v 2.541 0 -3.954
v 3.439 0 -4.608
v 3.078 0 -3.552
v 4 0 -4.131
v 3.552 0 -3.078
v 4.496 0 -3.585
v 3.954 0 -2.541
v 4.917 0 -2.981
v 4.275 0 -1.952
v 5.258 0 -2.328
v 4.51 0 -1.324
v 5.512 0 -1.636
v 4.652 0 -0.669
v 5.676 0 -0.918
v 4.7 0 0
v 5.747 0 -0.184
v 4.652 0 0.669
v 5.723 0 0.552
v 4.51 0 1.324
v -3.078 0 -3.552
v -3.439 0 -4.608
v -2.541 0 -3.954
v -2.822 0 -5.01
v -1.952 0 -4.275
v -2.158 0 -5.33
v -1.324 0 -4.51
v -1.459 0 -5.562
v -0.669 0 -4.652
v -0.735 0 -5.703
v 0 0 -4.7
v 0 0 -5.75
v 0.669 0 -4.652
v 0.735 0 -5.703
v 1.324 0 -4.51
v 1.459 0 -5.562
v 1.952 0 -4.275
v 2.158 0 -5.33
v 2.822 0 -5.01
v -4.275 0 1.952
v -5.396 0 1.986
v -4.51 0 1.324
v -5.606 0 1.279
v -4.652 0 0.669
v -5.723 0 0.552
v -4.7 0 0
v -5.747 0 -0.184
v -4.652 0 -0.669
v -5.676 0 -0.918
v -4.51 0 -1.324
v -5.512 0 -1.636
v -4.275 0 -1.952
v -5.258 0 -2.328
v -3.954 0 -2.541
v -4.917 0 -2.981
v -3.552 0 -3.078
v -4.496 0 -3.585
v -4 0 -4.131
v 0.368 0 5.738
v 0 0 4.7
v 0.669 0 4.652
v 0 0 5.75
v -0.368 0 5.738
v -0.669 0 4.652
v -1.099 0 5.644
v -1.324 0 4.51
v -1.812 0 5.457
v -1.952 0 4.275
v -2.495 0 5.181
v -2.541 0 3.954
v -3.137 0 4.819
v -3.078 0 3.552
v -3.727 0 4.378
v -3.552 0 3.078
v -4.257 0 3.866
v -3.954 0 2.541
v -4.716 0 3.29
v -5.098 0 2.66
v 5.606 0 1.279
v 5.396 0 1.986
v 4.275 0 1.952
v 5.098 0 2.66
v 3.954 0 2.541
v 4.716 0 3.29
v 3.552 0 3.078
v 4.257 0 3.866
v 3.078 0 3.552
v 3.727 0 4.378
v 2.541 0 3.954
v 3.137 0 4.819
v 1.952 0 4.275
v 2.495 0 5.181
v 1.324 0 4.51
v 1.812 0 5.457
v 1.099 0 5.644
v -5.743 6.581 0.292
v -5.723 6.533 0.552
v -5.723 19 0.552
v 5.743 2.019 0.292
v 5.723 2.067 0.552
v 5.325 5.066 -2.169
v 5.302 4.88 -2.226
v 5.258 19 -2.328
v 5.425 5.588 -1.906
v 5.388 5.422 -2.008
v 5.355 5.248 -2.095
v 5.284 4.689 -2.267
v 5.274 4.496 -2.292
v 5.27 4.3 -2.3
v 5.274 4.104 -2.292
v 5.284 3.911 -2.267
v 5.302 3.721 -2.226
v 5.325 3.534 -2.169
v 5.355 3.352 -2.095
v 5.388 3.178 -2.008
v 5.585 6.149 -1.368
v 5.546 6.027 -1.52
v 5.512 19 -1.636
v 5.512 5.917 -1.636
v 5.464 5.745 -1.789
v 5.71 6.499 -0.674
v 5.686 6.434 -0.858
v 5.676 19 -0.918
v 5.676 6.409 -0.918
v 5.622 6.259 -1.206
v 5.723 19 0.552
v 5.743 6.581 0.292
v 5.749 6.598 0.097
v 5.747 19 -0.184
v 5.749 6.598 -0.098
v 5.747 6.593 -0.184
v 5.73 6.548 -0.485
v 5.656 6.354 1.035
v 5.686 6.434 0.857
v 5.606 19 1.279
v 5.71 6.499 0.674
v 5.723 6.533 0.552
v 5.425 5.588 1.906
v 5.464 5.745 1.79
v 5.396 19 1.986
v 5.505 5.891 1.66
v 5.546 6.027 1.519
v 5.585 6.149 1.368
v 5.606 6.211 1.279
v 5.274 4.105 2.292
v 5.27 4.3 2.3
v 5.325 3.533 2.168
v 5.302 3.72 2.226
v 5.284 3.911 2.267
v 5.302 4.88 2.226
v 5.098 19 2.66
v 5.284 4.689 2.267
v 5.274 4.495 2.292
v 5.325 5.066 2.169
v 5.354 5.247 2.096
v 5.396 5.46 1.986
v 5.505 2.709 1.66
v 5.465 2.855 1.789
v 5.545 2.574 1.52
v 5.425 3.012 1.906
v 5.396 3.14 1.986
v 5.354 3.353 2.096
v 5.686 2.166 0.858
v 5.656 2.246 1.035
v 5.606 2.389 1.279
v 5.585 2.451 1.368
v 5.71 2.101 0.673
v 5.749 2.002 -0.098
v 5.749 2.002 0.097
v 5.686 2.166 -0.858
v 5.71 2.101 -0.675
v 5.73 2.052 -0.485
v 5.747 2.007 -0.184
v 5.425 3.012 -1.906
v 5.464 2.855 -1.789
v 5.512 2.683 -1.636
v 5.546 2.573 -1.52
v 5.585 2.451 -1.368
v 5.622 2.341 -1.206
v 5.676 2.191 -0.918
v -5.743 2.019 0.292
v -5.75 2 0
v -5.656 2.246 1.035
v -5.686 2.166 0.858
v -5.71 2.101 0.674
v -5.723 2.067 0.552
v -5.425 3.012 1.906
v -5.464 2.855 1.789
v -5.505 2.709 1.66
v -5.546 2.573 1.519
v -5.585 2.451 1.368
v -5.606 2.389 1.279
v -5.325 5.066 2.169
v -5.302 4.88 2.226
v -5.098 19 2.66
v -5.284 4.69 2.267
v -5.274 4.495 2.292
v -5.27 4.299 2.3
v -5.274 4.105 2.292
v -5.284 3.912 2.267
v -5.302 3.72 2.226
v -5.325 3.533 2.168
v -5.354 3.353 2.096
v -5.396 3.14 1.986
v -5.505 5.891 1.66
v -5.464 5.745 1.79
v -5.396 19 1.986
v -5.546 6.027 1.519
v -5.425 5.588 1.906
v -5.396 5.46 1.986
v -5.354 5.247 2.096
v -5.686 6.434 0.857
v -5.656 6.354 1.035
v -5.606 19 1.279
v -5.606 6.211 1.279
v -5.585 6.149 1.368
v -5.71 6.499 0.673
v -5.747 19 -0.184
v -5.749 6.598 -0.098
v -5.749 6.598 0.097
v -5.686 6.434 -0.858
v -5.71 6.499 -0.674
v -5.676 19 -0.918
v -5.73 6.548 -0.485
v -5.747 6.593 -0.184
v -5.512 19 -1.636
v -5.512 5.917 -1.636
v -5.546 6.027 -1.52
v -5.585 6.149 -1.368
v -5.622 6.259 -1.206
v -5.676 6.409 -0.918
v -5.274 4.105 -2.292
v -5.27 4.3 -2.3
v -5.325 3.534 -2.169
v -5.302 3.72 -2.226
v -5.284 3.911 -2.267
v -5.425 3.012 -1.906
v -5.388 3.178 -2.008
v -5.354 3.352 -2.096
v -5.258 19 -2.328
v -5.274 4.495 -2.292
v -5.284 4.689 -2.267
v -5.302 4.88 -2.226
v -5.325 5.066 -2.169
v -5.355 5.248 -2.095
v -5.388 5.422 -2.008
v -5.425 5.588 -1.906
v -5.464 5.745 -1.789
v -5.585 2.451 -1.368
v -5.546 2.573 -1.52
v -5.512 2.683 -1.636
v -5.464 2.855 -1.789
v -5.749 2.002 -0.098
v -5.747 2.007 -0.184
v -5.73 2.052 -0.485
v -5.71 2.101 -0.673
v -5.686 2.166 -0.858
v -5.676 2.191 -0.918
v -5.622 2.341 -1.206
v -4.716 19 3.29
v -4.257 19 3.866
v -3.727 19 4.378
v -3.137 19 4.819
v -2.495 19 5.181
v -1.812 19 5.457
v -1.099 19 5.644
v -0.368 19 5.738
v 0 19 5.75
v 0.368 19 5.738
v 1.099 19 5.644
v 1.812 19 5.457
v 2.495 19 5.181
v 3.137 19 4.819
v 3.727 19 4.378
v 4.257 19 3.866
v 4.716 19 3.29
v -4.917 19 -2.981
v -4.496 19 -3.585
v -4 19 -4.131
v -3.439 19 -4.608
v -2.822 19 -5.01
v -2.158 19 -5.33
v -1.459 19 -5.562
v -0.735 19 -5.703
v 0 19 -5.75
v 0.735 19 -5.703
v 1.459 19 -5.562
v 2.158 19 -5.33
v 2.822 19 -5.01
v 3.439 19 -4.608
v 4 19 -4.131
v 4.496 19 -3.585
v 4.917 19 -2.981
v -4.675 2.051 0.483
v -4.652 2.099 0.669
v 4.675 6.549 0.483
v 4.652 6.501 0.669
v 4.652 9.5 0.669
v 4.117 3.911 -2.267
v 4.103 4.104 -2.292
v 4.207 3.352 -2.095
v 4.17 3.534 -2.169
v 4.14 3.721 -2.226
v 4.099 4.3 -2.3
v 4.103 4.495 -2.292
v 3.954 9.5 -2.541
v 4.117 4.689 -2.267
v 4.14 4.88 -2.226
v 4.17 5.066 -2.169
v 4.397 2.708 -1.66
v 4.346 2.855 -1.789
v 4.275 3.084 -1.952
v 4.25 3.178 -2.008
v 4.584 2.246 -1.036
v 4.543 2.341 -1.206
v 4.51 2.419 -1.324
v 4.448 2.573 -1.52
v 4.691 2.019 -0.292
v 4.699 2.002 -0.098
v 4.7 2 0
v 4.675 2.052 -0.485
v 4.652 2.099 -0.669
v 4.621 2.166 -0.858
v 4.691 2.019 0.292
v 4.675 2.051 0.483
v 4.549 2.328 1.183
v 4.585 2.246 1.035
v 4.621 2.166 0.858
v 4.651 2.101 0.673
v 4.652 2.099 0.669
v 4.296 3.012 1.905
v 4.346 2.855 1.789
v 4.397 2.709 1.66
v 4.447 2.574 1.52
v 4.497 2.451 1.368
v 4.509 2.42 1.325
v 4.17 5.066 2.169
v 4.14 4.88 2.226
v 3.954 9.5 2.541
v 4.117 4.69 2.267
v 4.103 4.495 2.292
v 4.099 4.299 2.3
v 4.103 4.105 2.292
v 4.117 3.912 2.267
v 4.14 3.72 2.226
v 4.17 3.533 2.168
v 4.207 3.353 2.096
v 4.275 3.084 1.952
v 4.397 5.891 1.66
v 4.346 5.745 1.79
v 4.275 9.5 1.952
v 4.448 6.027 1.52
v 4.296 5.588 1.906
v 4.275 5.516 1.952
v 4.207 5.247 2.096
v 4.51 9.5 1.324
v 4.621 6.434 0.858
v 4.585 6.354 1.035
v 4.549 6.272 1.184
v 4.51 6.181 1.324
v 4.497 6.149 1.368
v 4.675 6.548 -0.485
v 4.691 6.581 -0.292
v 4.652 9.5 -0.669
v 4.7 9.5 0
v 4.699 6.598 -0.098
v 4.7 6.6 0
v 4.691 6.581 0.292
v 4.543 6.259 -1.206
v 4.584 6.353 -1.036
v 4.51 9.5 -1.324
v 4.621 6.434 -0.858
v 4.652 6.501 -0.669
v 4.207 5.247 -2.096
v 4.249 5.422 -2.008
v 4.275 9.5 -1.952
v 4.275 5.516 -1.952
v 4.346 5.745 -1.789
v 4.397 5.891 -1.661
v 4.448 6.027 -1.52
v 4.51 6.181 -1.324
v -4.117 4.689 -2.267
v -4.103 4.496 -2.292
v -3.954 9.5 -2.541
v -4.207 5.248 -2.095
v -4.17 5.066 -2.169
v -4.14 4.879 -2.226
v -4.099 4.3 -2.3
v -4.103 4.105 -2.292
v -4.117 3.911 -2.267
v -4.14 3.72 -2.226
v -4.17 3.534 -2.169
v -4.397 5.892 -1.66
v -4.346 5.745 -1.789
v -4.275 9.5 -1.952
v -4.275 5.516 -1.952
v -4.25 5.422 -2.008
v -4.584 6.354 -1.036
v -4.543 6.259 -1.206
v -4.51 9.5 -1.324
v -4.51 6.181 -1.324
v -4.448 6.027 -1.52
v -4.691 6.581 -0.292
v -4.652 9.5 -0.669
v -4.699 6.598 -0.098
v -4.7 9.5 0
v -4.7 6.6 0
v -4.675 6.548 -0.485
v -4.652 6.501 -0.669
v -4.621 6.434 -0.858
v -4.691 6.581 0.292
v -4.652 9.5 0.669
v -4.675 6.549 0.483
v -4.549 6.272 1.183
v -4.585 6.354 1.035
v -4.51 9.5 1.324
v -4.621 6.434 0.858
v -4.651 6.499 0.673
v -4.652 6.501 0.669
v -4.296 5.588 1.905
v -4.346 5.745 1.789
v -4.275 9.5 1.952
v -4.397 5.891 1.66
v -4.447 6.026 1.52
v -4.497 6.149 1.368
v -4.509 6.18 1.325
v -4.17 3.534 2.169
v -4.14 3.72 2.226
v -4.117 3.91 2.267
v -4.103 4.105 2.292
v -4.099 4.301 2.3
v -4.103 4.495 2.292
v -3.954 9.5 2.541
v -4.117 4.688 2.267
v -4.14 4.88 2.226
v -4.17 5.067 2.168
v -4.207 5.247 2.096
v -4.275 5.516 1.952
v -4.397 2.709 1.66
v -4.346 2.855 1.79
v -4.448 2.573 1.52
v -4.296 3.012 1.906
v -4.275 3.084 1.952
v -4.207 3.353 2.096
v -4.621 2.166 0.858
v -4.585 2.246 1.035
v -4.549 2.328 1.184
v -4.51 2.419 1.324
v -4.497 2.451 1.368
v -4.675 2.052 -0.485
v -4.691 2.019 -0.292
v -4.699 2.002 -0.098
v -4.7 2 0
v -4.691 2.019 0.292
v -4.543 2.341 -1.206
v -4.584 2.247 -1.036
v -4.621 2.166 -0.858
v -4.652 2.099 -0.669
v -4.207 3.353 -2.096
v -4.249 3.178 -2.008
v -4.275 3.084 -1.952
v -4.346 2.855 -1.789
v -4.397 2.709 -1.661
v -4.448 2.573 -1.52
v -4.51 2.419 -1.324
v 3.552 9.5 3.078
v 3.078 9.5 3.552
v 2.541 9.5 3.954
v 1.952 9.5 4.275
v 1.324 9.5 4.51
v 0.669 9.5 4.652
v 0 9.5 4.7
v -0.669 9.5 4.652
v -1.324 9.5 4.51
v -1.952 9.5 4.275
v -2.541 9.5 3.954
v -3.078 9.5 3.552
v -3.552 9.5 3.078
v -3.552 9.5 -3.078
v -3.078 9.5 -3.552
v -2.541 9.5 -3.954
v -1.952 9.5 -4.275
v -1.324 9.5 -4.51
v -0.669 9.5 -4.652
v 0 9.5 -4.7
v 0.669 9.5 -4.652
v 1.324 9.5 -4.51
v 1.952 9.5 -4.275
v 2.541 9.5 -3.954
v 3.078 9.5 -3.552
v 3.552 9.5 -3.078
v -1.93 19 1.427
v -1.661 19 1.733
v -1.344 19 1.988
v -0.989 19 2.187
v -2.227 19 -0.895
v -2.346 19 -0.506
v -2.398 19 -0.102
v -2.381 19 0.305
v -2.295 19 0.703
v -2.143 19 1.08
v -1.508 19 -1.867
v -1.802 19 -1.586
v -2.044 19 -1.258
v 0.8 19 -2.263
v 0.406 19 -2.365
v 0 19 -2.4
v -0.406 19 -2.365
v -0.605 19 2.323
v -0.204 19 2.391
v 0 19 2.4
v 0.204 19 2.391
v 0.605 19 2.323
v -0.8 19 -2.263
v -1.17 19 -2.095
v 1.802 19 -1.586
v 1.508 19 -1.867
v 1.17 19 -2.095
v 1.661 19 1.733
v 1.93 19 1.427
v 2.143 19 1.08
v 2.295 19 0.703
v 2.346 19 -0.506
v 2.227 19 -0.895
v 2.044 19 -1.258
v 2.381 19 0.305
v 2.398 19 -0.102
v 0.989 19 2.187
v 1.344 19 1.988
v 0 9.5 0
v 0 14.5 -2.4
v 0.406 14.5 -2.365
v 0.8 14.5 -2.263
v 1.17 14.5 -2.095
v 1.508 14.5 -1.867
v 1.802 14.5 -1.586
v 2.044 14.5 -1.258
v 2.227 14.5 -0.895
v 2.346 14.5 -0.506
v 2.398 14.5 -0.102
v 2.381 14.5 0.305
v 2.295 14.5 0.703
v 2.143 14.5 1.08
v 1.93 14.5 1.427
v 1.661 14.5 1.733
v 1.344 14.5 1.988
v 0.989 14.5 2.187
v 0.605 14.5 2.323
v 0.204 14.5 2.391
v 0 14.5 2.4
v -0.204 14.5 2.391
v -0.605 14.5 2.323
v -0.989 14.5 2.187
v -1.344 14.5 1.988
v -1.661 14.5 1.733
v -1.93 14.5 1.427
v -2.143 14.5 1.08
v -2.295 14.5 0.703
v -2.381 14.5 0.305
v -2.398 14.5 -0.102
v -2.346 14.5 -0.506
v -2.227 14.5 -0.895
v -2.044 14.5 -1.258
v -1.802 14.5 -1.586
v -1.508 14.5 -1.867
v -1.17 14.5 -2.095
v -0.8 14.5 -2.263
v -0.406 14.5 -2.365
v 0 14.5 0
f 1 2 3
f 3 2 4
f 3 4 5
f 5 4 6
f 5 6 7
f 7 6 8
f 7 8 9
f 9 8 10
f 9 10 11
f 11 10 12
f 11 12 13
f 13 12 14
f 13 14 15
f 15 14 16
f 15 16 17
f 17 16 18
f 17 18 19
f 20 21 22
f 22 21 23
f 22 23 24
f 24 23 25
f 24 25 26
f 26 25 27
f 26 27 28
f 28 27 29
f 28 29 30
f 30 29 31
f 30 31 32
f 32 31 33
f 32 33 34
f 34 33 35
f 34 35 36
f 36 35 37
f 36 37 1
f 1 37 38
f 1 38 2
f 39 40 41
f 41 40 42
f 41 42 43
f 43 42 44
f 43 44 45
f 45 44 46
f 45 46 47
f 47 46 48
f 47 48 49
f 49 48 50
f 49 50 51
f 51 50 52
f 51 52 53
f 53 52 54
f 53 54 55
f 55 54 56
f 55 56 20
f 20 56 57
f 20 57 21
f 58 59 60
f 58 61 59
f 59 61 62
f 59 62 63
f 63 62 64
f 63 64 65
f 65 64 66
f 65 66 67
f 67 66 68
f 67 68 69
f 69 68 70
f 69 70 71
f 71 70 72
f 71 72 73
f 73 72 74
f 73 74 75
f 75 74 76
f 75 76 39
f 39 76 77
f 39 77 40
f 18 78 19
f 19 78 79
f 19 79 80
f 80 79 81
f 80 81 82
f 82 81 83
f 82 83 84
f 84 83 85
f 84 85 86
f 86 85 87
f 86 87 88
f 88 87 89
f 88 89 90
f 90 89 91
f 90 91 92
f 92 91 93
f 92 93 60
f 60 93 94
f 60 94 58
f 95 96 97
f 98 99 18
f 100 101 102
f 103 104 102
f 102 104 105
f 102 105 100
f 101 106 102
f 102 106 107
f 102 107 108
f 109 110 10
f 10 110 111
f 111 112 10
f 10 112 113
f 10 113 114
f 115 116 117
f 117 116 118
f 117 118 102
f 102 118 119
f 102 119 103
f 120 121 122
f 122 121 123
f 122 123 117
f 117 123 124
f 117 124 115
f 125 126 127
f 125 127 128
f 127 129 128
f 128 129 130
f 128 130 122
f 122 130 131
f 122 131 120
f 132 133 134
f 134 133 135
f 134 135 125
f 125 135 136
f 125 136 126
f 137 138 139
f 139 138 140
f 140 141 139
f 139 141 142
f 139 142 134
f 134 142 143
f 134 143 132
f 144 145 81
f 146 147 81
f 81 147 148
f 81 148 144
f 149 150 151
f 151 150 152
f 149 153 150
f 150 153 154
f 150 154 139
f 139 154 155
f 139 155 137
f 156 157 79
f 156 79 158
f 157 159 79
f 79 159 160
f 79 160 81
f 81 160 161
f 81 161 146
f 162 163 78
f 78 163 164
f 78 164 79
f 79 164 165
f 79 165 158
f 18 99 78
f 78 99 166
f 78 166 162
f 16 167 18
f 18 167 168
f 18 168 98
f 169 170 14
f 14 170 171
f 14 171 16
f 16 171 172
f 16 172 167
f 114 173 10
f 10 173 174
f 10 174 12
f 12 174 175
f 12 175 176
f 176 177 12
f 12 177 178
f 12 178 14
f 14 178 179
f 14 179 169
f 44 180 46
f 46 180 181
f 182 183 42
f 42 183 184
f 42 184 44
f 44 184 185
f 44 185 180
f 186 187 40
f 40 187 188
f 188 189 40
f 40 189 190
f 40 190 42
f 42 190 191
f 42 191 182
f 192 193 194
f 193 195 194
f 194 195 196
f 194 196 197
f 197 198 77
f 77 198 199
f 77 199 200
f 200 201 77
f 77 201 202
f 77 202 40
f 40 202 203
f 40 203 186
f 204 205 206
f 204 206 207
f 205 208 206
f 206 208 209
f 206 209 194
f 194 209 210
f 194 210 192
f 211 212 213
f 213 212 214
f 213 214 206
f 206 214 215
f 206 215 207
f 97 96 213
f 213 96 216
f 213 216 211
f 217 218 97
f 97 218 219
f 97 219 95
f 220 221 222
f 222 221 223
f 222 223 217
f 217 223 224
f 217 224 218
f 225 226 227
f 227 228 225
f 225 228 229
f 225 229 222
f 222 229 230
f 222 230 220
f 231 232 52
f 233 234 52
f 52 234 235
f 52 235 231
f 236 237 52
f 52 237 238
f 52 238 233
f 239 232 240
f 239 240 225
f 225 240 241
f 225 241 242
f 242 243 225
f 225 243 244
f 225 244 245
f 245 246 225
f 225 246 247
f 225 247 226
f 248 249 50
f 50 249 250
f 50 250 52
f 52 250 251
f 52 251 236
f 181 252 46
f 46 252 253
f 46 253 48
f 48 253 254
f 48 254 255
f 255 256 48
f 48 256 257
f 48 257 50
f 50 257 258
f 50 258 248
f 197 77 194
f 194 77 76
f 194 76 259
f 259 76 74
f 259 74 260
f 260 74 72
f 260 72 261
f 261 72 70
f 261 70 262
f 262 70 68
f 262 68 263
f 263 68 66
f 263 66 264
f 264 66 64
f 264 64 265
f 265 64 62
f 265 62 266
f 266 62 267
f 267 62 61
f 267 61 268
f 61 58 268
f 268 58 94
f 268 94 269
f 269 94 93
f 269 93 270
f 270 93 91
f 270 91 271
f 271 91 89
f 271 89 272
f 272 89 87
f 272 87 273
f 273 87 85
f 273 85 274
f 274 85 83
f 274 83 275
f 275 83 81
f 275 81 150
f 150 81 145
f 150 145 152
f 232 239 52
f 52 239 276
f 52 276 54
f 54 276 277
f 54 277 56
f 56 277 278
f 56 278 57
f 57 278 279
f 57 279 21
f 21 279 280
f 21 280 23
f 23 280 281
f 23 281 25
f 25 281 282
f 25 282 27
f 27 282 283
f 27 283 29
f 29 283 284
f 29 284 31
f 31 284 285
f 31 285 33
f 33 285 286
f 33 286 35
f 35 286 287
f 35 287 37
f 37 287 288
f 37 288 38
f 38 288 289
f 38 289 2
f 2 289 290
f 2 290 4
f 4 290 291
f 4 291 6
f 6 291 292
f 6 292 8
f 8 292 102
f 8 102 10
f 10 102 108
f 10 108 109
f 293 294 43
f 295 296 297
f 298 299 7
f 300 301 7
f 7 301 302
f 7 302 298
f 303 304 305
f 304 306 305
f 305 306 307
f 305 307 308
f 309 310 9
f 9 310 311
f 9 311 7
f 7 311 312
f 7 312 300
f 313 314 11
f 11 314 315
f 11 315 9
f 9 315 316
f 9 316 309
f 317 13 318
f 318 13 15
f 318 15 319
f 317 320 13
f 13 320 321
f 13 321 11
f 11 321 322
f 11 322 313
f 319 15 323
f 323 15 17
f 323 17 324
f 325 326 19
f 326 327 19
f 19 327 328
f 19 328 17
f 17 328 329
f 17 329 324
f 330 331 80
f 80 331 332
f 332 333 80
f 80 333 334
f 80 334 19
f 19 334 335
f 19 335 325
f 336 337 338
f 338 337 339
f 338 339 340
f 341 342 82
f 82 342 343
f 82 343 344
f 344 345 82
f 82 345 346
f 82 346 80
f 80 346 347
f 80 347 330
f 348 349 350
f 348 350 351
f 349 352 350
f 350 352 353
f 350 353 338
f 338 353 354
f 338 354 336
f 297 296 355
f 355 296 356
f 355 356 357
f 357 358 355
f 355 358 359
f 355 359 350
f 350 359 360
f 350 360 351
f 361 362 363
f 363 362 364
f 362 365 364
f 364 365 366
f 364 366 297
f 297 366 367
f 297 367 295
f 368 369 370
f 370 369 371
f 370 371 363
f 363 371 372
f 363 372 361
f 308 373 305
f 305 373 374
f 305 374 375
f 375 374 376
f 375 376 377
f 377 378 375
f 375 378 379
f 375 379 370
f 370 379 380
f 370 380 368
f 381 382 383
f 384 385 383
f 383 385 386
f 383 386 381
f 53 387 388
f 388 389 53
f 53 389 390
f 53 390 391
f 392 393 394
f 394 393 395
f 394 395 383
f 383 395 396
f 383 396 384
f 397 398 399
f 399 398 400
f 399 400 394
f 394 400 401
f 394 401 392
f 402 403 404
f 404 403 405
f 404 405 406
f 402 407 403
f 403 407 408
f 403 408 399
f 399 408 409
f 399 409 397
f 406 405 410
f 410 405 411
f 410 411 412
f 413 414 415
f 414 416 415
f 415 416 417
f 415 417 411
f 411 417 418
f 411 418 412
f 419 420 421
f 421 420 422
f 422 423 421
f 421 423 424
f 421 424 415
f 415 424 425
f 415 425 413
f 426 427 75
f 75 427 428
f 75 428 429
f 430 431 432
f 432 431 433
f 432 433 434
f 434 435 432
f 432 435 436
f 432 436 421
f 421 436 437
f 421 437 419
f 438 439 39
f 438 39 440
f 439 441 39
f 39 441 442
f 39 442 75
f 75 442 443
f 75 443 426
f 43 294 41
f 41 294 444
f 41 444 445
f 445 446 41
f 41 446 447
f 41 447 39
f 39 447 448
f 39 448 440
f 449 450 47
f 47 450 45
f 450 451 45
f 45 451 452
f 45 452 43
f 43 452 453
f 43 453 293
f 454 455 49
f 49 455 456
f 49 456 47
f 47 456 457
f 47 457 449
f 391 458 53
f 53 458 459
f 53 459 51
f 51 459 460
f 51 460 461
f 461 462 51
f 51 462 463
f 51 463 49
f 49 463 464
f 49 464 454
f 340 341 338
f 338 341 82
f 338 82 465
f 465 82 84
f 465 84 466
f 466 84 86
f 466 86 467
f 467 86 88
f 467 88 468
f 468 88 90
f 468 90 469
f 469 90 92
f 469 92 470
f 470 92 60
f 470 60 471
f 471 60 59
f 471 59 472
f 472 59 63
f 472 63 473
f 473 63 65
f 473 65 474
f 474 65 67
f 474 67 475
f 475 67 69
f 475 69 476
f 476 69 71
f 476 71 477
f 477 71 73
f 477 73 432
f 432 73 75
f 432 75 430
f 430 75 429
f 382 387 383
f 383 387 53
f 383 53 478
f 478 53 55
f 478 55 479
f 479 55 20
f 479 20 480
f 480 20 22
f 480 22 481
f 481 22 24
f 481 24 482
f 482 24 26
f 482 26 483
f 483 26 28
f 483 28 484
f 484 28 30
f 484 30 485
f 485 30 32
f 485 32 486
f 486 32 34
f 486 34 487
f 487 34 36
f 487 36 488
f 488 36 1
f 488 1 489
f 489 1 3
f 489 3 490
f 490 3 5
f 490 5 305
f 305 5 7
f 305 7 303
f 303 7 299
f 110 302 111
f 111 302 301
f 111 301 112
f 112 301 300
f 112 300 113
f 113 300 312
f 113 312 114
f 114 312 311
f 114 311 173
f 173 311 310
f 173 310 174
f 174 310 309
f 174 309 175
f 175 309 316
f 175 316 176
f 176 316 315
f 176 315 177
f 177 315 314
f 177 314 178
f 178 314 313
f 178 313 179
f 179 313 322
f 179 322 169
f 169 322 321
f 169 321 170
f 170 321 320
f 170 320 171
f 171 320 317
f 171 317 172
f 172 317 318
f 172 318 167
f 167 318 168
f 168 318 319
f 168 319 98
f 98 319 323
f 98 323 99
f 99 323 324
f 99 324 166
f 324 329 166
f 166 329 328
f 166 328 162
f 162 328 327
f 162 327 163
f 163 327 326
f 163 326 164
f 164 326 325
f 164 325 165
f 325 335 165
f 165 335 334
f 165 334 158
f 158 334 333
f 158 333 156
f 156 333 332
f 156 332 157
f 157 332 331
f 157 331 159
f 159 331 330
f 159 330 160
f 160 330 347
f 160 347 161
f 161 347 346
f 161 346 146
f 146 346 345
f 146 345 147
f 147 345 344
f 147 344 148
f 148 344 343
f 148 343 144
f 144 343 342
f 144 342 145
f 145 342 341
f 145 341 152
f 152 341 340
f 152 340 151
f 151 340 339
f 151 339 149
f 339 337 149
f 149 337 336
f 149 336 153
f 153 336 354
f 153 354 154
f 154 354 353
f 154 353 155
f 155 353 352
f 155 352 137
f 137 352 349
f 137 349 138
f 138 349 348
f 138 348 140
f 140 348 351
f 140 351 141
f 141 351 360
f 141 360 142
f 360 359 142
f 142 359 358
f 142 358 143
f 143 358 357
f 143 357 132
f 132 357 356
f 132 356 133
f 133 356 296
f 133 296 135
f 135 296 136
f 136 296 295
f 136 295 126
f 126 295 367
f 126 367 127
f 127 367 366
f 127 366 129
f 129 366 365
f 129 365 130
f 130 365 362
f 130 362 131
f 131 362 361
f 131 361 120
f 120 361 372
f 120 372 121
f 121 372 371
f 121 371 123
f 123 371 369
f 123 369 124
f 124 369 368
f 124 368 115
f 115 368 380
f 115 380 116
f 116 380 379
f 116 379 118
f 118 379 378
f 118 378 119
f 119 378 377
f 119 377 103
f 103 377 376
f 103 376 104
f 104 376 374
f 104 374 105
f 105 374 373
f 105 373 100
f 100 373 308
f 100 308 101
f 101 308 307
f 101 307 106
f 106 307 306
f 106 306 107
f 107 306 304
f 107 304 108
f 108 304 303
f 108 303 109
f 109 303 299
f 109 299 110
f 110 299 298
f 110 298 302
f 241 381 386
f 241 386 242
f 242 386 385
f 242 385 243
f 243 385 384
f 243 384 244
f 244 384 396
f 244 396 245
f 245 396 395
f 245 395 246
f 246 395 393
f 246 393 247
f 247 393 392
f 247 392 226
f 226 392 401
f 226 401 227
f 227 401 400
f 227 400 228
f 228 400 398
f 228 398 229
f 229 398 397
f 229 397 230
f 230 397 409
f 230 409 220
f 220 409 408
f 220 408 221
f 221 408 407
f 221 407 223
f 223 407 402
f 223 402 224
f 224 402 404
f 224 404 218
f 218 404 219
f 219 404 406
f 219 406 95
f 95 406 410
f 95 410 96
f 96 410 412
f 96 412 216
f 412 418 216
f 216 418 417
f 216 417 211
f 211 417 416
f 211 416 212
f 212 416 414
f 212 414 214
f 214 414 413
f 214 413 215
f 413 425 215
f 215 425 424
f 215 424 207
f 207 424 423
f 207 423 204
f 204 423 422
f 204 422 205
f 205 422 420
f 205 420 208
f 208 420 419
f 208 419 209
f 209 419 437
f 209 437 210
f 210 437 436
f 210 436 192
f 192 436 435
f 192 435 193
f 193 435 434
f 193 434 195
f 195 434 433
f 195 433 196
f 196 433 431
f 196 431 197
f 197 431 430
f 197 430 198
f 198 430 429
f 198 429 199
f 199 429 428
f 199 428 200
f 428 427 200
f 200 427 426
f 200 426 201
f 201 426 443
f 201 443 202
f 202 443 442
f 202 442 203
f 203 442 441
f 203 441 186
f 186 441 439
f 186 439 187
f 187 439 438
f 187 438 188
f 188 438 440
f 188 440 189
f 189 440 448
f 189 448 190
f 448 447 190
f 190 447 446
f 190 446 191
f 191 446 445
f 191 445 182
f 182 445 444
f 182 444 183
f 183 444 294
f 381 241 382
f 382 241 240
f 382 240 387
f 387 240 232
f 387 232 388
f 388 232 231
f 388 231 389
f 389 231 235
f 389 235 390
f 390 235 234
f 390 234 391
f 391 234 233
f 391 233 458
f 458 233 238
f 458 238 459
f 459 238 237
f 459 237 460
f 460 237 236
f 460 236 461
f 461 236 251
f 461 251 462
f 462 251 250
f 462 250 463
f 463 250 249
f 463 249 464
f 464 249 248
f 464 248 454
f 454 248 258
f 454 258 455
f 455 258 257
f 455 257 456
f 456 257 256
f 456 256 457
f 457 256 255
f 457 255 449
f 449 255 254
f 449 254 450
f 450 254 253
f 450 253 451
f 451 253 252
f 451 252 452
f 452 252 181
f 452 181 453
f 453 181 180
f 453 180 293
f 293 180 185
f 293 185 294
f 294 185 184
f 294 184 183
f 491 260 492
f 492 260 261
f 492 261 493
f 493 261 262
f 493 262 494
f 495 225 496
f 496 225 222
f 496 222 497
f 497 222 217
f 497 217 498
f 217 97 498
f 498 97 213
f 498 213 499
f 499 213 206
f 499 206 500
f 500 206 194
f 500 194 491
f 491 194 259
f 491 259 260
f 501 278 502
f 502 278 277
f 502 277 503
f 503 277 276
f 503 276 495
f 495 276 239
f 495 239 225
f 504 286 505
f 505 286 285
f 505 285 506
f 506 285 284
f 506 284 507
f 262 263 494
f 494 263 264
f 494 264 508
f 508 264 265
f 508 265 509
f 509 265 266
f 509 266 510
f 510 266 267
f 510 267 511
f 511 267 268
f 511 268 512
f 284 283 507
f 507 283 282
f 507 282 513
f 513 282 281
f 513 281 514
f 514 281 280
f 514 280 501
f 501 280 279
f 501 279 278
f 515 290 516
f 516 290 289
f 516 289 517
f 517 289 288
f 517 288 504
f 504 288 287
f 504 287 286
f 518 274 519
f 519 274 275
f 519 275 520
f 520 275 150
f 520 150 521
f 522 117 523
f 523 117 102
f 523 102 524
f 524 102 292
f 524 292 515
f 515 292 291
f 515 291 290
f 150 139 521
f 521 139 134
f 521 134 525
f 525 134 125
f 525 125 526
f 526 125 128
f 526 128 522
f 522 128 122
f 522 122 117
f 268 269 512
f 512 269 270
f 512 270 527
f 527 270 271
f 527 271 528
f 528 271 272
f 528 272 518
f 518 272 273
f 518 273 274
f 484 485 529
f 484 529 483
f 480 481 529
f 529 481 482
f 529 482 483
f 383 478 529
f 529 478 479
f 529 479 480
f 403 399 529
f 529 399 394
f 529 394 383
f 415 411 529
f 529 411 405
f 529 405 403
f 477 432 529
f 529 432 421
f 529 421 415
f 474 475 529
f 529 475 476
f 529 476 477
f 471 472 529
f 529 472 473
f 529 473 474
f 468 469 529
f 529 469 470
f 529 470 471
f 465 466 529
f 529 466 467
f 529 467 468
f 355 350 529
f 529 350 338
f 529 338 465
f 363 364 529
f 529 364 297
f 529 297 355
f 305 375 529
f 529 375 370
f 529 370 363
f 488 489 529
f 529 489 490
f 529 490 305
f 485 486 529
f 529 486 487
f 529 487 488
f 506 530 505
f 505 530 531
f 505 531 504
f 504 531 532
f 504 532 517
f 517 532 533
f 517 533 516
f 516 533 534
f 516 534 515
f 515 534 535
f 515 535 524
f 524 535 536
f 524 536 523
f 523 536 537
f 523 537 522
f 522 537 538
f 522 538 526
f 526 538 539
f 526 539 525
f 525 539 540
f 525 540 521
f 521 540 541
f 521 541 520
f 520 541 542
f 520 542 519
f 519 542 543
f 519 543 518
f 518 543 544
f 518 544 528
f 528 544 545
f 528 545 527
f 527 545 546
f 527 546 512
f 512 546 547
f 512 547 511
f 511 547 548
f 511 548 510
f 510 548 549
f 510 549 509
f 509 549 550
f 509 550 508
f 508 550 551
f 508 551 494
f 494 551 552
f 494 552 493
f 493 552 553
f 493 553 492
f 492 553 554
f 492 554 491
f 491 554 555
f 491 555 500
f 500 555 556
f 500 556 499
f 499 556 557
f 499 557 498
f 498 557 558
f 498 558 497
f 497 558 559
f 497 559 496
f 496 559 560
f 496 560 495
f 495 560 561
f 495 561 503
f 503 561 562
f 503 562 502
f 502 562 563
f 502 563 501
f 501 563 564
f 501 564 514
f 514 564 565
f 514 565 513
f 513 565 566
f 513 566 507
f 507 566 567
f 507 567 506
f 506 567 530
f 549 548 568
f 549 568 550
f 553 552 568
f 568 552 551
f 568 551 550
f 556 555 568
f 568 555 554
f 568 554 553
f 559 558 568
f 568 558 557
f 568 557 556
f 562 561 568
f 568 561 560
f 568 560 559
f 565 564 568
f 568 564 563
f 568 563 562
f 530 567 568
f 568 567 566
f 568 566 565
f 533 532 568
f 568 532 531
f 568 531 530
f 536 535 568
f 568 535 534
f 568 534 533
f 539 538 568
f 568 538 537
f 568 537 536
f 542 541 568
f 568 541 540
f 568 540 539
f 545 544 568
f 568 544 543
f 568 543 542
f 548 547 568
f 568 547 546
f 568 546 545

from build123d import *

# Parameters (mm, degrees)
SKETCH1_R               = 5.75
SKETCH1_R_2             = 4.7
BOSS_EXTRUDE1_DEPTH     = 10
CUT_EXTRUDE1_DEPTH      = 13.888948755
CUT_EXTRUDE1_DEPTH_BACK = 13.888948755
SKETCH2_R               = 2.3
SKETCH3_R               = 5.75
BOSS_EXTRUDE2_DEPTH     = 9
BOSS_EXTRUDE3_START     = 0.5
SKETCH4_R               = 4.7
BOSS_EXTRUDE3_DEPTH     = 0.5
CUT_EXTRUDE2_DEPTH      = 21.667002833
CUT_EXTRUDE2_DEPTH_BACK = 4.5
SKETCH5_R               = 2.4


with BuildPart() as part:
    # Sketch1 → Boss-Extrude1 (new body)
    with BuildSketch(Plane(origin=(0, 0, 0), x_dir=(1, 0, 0), z_dir=(0, 1, 0))):
        with Locations(Location((0, 0, 0), (0, 0, 270))):
            Circle(SKETCH1_R)
        with Locations(Location((0, 0, 0), (0, 0, 270))):
            Circle(SKETCH1_R_2, mode=Mode.SUBTRACT)
    extrude(amount=BOSS_EXTRUDE1_DEPTH)

    # Sketch2 → Cut-Extrude1 (cut, two sides: drawn at the far end of the back side and taken through both)
    with BuildSketch(Plane(origin=(0, 0, 0), x_dir=(0, 0, -1), z_dir=(1, 0, 0)).offset(-CUT_EXTRUDE1_DEPTH_BACK)):
        with Locations((0, 4.3)):
            Circle(SKETCH2_R)
    extrude(amount=CUT_EXTRUDE1_DEPTH + CUT_EXTRUDE1_DEPTH_BACK, mode=Mode.SUBTRACT)

    # Sketch3 → Boss-Extrude2 (add)
    with BuildSketch(Plane(origin=(0, 10, 0), x_dir=(1, 0, 0), z_dir=(0, 1, 0))):
        with Locations(Location((0, 0, 0), (0, 0, 270))):
            Circle(SKETCH3_R)
    extrude(amount=BOSS_EXTRUDE2_DEPTH)

    # Sketch4 → Boss-Extrude3 (add)
    with BuildSketch(Plane.XZ.offset(-10).offset(BOSS_EXTRUDE3_START)):
        with Locations(Location((0, 0, 0), (0, 0, 270))):
            Circle(SKETCH4_R)
    extrude(amount=-BOSS_EXTRUDE3_DEPTH)

    # Sketch5 → Cut-Extrude2 (cut, two sides: drawn at the far end of the back side and taken through both)
    with BuildSketch(Plane(origin=(0, 19, 0), x_dir=(1, 0, 0), z_dir=(0, 1, 0)).offset(-CUT_EXTRUDE2_DEPTH_BACK)):
        with Locations(Location((0, 0, 0), (0, 0, 90))):
            Circle(SKETCH5_R)
    extrude(amount=CUT_EXTRUDE2_DEPTH + CUT_EXTRUDE2_DEPTH_BACK, mode=Mode.SUBTRACT)


solid = part.part
